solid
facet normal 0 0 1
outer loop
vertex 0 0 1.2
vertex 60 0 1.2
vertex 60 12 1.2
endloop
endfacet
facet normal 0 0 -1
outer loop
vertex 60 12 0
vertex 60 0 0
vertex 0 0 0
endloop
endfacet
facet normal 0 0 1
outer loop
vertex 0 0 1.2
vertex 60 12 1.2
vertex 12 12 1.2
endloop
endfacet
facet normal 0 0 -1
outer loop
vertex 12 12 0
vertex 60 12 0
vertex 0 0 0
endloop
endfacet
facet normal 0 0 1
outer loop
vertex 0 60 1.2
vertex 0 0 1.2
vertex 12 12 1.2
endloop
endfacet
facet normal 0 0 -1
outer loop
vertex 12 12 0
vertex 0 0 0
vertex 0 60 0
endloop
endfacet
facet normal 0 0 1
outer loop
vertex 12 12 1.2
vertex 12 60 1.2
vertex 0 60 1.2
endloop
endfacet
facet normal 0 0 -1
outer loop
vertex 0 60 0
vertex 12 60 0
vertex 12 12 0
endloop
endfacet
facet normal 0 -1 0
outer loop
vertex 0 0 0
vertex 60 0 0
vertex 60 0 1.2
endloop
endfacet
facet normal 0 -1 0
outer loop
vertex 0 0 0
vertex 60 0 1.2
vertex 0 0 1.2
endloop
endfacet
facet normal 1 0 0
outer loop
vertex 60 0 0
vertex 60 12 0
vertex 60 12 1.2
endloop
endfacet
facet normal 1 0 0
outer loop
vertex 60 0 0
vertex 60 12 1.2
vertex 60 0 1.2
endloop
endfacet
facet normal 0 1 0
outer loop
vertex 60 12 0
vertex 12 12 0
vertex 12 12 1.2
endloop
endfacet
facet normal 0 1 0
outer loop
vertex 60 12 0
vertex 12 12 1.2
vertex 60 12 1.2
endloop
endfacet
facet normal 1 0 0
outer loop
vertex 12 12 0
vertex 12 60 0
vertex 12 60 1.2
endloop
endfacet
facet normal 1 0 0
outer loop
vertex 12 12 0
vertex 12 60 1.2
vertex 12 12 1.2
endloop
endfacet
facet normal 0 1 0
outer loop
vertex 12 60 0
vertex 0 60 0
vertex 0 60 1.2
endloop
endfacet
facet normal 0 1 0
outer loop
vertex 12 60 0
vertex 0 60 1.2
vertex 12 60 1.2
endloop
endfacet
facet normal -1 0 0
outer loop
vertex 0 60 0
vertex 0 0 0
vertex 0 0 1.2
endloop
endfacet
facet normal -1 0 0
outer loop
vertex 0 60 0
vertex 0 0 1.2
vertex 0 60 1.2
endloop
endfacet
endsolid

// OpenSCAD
// lane corner L, 60 mm (generated by tools/demo_course_parts.py)
linear_extrude(1.2) polygon([[0, 0], [60, 0], [60, 12], [12, 12], [12, 60], [0, 60]]);
